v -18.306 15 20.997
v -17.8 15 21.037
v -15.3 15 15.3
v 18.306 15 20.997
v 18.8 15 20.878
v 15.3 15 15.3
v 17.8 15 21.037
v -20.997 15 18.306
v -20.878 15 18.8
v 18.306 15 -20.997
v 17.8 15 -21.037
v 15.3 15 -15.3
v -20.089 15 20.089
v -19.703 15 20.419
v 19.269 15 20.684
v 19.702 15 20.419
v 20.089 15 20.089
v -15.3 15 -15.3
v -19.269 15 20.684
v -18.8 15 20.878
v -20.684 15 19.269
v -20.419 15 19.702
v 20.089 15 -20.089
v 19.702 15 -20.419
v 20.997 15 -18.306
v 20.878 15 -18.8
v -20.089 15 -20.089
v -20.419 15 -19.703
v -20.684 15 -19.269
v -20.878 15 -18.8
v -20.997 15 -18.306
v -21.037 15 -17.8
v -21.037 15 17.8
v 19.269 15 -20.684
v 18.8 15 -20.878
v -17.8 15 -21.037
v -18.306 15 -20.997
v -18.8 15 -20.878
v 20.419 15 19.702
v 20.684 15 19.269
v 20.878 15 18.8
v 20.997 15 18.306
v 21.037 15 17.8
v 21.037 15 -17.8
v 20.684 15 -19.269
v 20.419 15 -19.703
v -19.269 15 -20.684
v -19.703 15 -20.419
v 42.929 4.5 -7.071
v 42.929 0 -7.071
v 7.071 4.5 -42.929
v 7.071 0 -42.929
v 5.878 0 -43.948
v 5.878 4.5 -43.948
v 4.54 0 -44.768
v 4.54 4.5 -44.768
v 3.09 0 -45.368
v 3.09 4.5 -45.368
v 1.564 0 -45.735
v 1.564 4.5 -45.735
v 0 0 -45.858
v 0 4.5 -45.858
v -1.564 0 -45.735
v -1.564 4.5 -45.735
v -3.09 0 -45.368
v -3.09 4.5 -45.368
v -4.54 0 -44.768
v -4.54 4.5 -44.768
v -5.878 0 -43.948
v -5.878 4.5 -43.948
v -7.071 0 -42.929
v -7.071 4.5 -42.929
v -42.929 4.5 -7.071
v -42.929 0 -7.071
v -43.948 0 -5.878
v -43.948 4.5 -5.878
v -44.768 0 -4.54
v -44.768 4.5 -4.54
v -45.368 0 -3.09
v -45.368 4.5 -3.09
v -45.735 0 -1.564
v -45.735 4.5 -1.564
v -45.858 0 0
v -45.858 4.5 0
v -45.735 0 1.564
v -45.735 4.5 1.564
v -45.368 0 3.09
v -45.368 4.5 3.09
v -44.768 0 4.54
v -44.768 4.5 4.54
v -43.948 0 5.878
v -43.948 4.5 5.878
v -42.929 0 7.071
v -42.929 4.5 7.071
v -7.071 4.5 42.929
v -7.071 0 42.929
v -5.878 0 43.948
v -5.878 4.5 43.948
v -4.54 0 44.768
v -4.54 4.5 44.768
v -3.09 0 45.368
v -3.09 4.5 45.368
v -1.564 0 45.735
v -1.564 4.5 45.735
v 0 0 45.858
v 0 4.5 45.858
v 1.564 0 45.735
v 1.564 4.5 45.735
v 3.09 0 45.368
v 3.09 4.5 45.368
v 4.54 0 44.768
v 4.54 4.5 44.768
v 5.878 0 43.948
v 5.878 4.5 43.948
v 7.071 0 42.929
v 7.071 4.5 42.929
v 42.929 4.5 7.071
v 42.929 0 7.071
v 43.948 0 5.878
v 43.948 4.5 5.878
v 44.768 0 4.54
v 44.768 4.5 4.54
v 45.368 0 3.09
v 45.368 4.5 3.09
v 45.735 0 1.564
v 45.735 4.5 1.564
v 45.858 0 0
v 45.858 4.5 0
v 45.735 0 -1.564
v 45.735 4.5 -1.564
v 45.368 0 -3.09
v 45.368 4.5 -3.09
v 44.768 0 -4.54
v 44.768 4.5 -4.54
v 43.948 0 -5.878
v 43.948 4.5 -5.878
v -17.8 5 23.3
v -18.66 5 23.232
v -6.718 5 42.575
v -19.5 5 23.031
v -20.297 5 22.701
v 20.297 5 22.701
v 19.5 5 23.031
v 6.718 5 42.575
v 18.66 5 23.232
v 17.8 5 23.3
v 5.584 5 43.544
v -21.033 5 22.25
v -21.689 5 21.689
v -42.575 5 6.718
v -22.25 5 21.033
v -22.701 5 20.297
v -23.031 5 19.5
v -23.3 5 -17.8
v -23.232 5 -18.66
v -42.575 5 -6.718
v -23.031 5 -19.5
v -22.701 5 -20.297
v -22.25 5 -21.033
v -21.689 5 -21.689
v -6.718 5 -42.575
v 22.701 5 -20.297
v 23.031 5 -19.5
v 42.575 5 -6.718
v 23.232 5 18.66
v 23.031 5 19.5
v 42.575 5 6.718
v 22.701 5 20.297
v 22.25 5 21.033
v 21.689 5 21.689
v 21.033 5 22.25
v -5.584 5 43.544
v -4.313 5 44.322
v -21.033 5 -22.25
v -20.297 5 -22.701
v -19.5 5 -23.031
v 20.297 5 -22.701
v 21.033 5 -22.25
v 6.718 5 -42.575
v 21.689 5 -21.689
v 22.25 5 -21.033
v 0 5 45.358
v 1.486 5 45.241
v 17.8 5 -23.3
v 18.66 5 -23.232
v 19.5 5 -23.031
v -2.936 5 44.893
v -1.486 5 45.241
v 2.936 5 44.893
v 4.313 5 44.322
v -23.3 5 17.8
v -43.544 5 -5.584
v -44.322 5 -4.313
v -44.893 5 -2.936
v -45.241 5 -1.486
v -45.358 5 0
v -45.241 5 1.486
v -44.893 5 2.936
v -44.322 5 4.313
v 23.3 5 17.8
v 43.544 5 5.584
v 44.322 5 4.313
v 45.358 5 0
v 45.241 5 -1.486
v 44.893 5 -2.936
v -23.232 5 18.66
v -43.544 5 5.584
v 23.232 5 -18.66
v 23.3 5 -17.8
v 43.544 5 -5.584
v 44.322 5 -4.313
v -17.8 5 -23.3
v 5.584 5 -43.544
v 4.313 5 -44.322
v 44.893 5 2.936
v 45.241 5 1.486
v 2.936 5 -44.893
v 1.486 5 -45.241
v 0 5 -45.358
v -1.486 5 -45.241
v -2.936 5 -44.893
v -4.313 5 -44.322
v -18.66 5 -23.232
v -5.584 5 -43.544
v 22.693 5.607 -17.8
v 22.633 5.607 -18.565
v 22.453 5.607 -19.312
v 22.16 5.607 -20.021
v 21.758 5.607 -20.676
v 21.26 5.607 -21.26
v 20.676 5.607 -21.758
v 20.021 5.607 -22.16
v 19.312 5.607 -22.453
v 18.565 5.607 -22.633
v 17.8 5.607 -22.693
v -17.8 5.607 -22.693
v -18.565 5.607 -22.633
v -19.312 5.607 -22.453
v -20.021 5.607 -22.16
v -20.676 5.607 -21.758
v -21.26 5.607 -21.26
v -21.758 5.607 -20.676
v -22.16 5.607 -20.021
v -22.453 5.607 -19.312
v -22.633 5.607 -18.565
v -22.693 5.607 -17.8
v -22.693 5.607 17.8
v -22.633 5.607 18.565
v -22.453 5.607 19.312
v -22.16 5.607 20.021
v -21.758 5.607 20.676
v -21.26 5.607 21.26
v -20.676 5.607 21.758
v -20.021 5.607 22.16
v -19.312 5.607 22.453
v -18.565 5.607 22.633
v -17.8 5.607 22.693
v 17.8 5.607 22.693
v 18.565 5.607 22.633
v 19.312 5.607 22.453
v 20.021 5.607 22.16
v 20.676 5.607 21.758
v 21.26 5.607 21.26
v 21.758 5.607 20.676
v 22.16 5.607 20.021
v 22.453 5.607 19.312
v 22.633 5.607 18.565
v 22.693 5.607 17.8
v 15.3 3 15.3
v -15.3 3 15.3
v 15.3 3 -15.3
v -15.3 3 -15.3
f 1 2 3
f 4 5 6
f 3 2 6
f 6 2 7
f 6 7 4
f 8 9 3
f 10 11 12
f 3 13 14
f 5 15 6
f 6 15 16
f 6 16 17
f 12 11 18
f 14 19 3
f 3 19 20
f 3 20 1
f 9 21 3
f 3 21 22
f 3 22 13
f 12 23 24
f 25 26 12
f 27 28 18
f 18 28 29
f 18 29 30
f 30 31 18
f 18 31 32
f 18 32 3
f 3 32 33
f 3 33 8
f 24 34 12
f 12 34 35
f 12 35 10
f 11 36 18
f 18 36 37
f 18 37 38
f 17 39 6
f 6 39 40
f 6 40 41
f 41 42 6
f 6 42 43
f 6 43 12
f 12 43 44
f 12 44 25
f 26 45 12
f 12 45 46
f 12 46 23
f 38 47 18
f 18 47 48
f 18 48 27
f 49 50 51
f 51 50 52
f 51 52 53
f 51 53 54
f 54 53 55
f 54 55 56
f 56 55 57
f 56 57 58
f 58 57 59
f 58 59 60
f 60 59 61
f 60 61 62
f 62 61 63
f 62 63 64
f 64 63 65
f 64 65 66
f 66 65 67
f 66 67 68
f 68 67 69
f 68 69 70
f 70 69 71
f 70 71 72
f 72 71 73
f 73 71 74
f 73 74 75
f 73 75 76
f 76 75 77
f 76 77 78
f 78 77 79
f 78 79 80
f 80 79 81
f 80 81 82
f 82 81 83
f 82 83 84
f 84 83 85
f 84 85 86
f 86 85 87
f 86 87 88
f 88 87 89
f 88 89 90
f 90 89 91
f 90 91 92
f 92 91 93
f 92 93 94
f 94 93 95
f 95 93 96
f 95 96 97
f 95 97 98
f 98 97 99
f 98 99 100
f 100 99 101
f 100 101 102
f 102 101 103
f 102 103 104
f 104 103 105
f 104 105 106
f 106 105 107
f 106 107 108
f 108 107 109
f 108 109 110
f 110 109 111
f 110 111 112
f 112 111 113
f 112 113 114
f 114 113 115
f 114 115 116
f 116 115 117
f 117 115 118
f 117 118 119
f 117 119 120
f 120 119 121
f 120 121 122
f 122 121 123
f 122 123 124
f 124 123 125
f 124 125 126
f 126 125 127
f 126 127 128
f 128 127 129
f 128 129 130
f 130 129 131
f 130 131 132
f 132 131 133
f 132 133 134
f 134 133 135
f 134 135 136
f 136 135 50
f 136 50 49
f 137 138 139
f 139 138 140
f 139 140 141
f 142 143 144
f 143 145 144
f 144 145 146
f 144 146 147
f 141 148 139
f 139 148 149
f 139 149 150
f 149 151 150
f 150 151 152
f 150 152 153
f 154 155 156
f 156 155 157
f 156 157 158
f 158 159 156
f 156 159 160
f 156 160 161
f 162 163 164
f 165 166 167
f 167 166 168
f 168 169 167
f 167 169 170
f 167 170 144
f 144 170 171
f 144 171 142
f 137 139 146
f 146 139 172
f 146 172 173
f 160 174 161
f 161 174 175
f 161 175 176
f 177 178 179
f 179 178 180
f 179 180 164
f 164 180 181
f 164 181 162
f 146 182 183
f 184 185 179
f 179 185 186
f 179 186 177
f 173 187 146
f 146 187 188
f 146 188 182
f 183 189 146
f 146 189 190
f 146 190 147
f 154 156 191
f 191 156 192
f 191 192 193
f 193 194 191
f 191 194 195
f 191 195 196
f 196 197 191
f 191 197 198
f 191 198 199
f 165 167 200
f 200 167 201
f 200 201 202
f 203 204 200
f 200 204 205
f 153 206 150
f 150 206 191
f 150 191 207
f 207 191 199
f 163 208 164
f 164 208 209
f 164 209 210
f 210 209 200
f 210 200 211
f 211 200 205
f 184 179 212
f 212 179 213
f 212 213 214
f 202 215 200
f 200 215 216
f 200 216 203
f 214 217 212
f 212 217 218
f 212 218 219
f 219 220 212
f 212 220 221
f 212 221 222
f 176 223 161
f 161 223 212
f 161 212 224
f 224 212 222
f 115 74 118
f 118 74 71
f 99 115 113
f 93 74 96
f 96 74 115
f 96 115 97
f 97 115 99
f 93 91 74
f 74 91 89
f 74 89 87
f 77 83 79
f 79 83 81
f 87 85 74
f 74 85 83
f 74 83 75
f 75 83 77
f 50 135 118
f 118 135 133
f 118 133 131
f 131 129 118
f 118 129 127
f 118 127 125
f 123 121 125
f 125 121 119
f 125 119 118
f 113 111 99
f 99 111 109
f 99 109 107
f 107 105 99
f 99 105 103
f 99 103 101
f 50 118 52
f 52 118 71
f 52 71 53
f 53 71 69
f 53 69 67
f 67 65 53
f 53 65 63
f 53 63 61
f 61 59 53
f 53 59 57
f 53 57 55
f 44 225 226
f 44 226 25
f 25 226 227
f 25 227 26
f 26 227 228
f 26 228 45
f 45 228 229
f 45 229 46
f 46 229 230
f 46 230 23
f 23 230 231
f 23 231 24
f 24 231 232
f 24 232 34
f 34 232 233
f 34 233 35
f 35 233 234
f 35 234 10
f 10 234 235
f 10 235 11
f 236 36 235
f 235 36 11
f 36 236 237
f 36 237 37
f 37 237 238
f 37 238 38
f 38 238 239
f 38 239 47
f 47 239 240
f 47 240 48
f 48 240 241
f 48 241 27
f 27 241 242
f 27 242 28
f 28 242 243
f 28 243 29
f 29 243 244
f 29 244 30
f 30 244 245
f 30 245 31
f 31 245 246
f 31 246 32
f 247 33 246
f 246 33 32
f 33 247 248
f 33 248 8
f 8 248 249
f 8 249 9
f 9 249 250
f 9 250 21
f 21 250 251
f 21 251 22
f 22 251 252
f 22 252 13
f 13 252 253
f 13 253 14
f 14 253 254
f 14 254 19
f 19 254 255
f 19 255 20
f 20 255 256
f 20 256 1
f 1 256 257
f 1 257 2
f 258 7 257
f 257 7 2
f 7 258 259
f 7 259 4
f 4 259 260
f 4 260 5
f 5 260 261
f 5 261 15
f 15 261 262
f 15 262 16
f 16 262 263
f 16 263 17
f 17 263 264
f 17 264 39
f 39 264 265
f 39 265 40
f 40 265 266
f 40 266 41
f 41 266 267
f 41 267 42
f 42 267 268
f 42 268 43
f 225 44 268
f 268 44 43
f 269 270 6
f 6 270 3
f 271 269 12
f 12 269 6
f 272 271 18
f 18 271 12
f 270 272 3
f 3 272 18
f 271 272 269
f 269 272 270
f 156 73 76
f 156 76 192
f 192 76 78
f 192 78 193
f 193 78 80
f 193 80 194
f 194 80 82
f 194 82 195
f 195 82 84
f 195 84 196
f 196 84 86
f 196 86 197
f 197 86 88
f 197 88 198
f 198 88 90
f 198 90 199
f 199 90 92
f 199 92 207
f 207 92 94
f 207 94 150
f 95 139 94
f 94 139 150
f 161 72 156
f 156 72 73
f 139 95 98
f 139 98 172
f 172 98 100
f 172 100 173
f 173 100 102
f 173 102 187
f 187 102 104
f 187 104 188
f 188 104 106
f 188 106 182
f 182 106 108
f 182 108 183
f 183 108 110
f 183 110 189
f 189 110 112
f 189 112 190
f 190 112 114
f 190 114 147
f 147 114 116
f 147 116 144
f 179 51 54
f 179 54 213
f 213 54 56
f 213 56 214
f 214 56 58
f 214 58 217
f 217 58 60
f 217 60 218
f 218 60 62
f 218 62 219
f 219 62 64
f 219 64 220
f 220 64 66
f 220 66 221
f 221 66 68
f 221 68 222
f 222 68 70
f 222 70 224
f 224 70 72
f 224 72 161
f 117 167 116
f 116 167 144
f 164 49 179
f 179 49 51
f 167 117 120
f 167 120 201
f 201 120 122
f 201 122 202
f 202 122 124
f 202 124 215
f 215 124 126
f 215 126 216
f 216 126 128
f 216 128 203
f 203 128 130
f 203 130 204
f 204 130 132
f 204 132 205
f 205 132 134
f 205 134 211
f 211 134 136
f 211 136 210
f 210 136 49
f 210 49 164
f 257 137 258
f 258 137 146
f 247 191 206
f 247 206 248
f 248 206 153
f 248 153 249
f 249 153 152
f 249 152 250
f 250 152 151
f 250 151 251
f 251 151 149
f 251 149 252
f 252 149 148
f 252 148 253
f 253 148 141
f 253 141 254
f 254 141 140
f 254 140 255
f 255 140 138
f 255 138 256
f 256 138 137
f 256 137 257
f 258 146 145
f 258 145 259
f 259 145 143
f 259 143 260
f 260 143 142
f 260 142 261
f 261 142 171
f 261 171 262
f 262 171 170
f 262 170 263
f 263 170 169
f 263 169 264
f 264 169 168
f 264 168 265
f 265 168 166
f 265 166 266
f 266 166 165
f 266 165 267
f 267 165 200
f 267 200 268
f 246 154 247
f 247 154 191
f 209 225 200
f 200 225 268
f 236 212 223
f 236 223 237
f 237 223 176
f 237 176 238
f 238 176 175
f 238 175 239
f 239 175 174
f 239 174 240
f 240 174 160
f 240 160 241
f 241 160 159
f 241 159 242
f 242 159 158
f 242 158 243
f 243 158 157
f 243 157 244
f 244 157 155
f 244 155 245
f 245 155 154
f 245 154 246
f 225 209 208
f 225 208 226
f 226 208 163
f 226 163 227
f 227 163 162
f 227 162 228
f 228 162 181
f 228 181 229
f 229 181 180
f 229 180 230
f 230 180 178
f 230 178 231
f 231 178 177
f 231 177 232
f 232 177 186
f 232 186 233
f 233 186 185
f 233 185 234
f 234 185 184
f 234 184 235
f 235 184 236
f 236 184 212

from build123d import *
from OCP.BRepFilletAPI import BRepFilletAPI_MakeChamfer

# Parameters (mm, degrees)
BOSS_EXTRUDE1_DEPTH = 5
BOSS_EXTRUDE2_START = 5
BOSS_EXTRUDE2_DEPTH = 10
BOSS_EXTRUDE2_TAPER = 10
CUT_EXTRUDE1_START  = 3
SKETCH1_5_W         = 30.6
SKETCH1_5_H         = 30.6
CUT_EXTRUDE1_DEPTH  = 12
CHAMFER1_SIZE       = 0.5
CHAMFER1_SIZE2      = 0.616401526


with BuildPart() as part:
    # Sketch1 → Boss-Extrude1 (new body)
    with BuildSketch(Plane(origin=(0, 0, 0), x_dir=(1, 0, 0), z_dir=(0, 1, 0))):
        with BuildLine():
            Line((7.071067812, -42.928932188), (42.928932188, -7.071067812))
            ThreePointArc((42.928932188, -7.071067812), (45.857864376, 0), (42.928932188, 7.071067812))
            Line((42.928932188, 7.071067812), (7.071067812, 42.928932188))
            ThreePointArc((7.071067812, 42.928932188), (0, 45.857864376), (-7.071067812, 42.928932188))
            Line((-7.071067812, 42.928932188), (-42.928932188, 7.071067812))
            ThreePointArc((-42.928932188, 7.071067812), (-45.857864376, 0), (-42.928932188, -7.071067812))
            Line((-42.928932188, -7.071067812), (-7.071067812, -42.928932188))
            ThreePointArc((-7.071067812, -42.928932188), (0, -45.857864376), (7.071067812, -42.928932188))
        make_face()
    extrude(amount=BOSS_EXTRUDE1_DEPTH)

    # Sketch1<4> → Boss-Extrude2 (add)
    with BuildSketch(Plane(origin=(0, 0, 0), x_dir=(1, 0, 0), z_dir=(0, 1, 0)).offset(BOSS_EXTRUDE2_START)):
        with BuildLine():
            ThreePointArc((17.8, -22.8), (21.335533906, -21.335533906), (22.8, -17.8))
            Line((22.8, -17.8), (22.8, 17.8))
            ThreePointArc((22.8, 17.8), (21.335533906, 21.335533906), (17.8, 22.8))
            Line((17.8, 22.8), (-17.8, 22.8))
            ThreePointArc((-17.8, 22.8), (-21.335533906, 21.335533906), (-22.8, 17.8))
            Line((-22.8, 17.8), (-22.8, -17.8))
            ThreePointArc((-22.8, -17.8), (-21.335533906, -21.335533906), (-17.8, -22.8))
            Line((-17.8, -22.8), (17.8, -22.8))
        make_face()
    extrude(amount=BOSS_EXTRUDE2_DEPTH, taper=BOSS_EXTRUDE2_TAPER)

    # Sketch1<5> → Cut-Extrude1 (cut)
    with BuildSketch(Plane(origin=(0, 0, 0), x_dir=(1, 0, 0), z_dir=(0, 1, 0)).offset(CUT_EXTRUDE1_START)):
        Rectangle(SKETCH1_5_W, SKETCH1_5_H)
    extrude(amount=CUT_EXTRUDE1_DEPTH, mode=Mode.SUBTRACT)

    # Chamfer1: one chamfer whose edges measure the first distance from different faces: ONE call of the kernel's chamfer builder (chamfer() names one face for all edges)
    chamfer1_edges_1 = [part.edges().sort_by_distance(p)[0] for p in [
        (0, 5, -45.857864376),
        (-25, 5, -25),
        (-45.857864376, 5, 0),
        (-25, 5, 25),
        (0, 5, 45.857864376),
        (25, 5, 25),
        (45.857864376, 5, 0),
        (25, 5, -25),
    ]]
    chamfer1_edges_2 = [part.edges().sort_by_distance(p)[0] for p in [
        (21.335533906, 5, -21.335533906),
        (-21.335533906, 5, -21.335533906),
        (-22.8, 5, 0),
        (-21.335533906, 5, 21.335533906),
        (0, 5, 22.8),
        (21.335533906, 5, 21.335533906),
        (22.8, 5, 0),
        (0, 5, -22.8),
    ]]
    chamfer1_side_2 = [part.faces().sort_by_distance(p)[0] for p in [
        (24.082842712, 5, 24.082842712),
    ]]
    chamfer1 = BRepFilletAPI_MakeChamfer(part.part.solid().wrapped)
    for e in chamfer1_edges_1:
        chamfer1.Add(CHAMFER1_SIZE, e.wrapped)
    for e in chamfer1_edges_2:
        chamfer1.Add(CHAMFER1_SIZE, CHAMFER1_SIZE2, e.wrapped, chamfer1_side_2[0].wrapped)  # the first distance lies on this face
    add(Compound.cast(chamfer1.Shape()), mode=Mode.REPLACE)


solid = part.part
